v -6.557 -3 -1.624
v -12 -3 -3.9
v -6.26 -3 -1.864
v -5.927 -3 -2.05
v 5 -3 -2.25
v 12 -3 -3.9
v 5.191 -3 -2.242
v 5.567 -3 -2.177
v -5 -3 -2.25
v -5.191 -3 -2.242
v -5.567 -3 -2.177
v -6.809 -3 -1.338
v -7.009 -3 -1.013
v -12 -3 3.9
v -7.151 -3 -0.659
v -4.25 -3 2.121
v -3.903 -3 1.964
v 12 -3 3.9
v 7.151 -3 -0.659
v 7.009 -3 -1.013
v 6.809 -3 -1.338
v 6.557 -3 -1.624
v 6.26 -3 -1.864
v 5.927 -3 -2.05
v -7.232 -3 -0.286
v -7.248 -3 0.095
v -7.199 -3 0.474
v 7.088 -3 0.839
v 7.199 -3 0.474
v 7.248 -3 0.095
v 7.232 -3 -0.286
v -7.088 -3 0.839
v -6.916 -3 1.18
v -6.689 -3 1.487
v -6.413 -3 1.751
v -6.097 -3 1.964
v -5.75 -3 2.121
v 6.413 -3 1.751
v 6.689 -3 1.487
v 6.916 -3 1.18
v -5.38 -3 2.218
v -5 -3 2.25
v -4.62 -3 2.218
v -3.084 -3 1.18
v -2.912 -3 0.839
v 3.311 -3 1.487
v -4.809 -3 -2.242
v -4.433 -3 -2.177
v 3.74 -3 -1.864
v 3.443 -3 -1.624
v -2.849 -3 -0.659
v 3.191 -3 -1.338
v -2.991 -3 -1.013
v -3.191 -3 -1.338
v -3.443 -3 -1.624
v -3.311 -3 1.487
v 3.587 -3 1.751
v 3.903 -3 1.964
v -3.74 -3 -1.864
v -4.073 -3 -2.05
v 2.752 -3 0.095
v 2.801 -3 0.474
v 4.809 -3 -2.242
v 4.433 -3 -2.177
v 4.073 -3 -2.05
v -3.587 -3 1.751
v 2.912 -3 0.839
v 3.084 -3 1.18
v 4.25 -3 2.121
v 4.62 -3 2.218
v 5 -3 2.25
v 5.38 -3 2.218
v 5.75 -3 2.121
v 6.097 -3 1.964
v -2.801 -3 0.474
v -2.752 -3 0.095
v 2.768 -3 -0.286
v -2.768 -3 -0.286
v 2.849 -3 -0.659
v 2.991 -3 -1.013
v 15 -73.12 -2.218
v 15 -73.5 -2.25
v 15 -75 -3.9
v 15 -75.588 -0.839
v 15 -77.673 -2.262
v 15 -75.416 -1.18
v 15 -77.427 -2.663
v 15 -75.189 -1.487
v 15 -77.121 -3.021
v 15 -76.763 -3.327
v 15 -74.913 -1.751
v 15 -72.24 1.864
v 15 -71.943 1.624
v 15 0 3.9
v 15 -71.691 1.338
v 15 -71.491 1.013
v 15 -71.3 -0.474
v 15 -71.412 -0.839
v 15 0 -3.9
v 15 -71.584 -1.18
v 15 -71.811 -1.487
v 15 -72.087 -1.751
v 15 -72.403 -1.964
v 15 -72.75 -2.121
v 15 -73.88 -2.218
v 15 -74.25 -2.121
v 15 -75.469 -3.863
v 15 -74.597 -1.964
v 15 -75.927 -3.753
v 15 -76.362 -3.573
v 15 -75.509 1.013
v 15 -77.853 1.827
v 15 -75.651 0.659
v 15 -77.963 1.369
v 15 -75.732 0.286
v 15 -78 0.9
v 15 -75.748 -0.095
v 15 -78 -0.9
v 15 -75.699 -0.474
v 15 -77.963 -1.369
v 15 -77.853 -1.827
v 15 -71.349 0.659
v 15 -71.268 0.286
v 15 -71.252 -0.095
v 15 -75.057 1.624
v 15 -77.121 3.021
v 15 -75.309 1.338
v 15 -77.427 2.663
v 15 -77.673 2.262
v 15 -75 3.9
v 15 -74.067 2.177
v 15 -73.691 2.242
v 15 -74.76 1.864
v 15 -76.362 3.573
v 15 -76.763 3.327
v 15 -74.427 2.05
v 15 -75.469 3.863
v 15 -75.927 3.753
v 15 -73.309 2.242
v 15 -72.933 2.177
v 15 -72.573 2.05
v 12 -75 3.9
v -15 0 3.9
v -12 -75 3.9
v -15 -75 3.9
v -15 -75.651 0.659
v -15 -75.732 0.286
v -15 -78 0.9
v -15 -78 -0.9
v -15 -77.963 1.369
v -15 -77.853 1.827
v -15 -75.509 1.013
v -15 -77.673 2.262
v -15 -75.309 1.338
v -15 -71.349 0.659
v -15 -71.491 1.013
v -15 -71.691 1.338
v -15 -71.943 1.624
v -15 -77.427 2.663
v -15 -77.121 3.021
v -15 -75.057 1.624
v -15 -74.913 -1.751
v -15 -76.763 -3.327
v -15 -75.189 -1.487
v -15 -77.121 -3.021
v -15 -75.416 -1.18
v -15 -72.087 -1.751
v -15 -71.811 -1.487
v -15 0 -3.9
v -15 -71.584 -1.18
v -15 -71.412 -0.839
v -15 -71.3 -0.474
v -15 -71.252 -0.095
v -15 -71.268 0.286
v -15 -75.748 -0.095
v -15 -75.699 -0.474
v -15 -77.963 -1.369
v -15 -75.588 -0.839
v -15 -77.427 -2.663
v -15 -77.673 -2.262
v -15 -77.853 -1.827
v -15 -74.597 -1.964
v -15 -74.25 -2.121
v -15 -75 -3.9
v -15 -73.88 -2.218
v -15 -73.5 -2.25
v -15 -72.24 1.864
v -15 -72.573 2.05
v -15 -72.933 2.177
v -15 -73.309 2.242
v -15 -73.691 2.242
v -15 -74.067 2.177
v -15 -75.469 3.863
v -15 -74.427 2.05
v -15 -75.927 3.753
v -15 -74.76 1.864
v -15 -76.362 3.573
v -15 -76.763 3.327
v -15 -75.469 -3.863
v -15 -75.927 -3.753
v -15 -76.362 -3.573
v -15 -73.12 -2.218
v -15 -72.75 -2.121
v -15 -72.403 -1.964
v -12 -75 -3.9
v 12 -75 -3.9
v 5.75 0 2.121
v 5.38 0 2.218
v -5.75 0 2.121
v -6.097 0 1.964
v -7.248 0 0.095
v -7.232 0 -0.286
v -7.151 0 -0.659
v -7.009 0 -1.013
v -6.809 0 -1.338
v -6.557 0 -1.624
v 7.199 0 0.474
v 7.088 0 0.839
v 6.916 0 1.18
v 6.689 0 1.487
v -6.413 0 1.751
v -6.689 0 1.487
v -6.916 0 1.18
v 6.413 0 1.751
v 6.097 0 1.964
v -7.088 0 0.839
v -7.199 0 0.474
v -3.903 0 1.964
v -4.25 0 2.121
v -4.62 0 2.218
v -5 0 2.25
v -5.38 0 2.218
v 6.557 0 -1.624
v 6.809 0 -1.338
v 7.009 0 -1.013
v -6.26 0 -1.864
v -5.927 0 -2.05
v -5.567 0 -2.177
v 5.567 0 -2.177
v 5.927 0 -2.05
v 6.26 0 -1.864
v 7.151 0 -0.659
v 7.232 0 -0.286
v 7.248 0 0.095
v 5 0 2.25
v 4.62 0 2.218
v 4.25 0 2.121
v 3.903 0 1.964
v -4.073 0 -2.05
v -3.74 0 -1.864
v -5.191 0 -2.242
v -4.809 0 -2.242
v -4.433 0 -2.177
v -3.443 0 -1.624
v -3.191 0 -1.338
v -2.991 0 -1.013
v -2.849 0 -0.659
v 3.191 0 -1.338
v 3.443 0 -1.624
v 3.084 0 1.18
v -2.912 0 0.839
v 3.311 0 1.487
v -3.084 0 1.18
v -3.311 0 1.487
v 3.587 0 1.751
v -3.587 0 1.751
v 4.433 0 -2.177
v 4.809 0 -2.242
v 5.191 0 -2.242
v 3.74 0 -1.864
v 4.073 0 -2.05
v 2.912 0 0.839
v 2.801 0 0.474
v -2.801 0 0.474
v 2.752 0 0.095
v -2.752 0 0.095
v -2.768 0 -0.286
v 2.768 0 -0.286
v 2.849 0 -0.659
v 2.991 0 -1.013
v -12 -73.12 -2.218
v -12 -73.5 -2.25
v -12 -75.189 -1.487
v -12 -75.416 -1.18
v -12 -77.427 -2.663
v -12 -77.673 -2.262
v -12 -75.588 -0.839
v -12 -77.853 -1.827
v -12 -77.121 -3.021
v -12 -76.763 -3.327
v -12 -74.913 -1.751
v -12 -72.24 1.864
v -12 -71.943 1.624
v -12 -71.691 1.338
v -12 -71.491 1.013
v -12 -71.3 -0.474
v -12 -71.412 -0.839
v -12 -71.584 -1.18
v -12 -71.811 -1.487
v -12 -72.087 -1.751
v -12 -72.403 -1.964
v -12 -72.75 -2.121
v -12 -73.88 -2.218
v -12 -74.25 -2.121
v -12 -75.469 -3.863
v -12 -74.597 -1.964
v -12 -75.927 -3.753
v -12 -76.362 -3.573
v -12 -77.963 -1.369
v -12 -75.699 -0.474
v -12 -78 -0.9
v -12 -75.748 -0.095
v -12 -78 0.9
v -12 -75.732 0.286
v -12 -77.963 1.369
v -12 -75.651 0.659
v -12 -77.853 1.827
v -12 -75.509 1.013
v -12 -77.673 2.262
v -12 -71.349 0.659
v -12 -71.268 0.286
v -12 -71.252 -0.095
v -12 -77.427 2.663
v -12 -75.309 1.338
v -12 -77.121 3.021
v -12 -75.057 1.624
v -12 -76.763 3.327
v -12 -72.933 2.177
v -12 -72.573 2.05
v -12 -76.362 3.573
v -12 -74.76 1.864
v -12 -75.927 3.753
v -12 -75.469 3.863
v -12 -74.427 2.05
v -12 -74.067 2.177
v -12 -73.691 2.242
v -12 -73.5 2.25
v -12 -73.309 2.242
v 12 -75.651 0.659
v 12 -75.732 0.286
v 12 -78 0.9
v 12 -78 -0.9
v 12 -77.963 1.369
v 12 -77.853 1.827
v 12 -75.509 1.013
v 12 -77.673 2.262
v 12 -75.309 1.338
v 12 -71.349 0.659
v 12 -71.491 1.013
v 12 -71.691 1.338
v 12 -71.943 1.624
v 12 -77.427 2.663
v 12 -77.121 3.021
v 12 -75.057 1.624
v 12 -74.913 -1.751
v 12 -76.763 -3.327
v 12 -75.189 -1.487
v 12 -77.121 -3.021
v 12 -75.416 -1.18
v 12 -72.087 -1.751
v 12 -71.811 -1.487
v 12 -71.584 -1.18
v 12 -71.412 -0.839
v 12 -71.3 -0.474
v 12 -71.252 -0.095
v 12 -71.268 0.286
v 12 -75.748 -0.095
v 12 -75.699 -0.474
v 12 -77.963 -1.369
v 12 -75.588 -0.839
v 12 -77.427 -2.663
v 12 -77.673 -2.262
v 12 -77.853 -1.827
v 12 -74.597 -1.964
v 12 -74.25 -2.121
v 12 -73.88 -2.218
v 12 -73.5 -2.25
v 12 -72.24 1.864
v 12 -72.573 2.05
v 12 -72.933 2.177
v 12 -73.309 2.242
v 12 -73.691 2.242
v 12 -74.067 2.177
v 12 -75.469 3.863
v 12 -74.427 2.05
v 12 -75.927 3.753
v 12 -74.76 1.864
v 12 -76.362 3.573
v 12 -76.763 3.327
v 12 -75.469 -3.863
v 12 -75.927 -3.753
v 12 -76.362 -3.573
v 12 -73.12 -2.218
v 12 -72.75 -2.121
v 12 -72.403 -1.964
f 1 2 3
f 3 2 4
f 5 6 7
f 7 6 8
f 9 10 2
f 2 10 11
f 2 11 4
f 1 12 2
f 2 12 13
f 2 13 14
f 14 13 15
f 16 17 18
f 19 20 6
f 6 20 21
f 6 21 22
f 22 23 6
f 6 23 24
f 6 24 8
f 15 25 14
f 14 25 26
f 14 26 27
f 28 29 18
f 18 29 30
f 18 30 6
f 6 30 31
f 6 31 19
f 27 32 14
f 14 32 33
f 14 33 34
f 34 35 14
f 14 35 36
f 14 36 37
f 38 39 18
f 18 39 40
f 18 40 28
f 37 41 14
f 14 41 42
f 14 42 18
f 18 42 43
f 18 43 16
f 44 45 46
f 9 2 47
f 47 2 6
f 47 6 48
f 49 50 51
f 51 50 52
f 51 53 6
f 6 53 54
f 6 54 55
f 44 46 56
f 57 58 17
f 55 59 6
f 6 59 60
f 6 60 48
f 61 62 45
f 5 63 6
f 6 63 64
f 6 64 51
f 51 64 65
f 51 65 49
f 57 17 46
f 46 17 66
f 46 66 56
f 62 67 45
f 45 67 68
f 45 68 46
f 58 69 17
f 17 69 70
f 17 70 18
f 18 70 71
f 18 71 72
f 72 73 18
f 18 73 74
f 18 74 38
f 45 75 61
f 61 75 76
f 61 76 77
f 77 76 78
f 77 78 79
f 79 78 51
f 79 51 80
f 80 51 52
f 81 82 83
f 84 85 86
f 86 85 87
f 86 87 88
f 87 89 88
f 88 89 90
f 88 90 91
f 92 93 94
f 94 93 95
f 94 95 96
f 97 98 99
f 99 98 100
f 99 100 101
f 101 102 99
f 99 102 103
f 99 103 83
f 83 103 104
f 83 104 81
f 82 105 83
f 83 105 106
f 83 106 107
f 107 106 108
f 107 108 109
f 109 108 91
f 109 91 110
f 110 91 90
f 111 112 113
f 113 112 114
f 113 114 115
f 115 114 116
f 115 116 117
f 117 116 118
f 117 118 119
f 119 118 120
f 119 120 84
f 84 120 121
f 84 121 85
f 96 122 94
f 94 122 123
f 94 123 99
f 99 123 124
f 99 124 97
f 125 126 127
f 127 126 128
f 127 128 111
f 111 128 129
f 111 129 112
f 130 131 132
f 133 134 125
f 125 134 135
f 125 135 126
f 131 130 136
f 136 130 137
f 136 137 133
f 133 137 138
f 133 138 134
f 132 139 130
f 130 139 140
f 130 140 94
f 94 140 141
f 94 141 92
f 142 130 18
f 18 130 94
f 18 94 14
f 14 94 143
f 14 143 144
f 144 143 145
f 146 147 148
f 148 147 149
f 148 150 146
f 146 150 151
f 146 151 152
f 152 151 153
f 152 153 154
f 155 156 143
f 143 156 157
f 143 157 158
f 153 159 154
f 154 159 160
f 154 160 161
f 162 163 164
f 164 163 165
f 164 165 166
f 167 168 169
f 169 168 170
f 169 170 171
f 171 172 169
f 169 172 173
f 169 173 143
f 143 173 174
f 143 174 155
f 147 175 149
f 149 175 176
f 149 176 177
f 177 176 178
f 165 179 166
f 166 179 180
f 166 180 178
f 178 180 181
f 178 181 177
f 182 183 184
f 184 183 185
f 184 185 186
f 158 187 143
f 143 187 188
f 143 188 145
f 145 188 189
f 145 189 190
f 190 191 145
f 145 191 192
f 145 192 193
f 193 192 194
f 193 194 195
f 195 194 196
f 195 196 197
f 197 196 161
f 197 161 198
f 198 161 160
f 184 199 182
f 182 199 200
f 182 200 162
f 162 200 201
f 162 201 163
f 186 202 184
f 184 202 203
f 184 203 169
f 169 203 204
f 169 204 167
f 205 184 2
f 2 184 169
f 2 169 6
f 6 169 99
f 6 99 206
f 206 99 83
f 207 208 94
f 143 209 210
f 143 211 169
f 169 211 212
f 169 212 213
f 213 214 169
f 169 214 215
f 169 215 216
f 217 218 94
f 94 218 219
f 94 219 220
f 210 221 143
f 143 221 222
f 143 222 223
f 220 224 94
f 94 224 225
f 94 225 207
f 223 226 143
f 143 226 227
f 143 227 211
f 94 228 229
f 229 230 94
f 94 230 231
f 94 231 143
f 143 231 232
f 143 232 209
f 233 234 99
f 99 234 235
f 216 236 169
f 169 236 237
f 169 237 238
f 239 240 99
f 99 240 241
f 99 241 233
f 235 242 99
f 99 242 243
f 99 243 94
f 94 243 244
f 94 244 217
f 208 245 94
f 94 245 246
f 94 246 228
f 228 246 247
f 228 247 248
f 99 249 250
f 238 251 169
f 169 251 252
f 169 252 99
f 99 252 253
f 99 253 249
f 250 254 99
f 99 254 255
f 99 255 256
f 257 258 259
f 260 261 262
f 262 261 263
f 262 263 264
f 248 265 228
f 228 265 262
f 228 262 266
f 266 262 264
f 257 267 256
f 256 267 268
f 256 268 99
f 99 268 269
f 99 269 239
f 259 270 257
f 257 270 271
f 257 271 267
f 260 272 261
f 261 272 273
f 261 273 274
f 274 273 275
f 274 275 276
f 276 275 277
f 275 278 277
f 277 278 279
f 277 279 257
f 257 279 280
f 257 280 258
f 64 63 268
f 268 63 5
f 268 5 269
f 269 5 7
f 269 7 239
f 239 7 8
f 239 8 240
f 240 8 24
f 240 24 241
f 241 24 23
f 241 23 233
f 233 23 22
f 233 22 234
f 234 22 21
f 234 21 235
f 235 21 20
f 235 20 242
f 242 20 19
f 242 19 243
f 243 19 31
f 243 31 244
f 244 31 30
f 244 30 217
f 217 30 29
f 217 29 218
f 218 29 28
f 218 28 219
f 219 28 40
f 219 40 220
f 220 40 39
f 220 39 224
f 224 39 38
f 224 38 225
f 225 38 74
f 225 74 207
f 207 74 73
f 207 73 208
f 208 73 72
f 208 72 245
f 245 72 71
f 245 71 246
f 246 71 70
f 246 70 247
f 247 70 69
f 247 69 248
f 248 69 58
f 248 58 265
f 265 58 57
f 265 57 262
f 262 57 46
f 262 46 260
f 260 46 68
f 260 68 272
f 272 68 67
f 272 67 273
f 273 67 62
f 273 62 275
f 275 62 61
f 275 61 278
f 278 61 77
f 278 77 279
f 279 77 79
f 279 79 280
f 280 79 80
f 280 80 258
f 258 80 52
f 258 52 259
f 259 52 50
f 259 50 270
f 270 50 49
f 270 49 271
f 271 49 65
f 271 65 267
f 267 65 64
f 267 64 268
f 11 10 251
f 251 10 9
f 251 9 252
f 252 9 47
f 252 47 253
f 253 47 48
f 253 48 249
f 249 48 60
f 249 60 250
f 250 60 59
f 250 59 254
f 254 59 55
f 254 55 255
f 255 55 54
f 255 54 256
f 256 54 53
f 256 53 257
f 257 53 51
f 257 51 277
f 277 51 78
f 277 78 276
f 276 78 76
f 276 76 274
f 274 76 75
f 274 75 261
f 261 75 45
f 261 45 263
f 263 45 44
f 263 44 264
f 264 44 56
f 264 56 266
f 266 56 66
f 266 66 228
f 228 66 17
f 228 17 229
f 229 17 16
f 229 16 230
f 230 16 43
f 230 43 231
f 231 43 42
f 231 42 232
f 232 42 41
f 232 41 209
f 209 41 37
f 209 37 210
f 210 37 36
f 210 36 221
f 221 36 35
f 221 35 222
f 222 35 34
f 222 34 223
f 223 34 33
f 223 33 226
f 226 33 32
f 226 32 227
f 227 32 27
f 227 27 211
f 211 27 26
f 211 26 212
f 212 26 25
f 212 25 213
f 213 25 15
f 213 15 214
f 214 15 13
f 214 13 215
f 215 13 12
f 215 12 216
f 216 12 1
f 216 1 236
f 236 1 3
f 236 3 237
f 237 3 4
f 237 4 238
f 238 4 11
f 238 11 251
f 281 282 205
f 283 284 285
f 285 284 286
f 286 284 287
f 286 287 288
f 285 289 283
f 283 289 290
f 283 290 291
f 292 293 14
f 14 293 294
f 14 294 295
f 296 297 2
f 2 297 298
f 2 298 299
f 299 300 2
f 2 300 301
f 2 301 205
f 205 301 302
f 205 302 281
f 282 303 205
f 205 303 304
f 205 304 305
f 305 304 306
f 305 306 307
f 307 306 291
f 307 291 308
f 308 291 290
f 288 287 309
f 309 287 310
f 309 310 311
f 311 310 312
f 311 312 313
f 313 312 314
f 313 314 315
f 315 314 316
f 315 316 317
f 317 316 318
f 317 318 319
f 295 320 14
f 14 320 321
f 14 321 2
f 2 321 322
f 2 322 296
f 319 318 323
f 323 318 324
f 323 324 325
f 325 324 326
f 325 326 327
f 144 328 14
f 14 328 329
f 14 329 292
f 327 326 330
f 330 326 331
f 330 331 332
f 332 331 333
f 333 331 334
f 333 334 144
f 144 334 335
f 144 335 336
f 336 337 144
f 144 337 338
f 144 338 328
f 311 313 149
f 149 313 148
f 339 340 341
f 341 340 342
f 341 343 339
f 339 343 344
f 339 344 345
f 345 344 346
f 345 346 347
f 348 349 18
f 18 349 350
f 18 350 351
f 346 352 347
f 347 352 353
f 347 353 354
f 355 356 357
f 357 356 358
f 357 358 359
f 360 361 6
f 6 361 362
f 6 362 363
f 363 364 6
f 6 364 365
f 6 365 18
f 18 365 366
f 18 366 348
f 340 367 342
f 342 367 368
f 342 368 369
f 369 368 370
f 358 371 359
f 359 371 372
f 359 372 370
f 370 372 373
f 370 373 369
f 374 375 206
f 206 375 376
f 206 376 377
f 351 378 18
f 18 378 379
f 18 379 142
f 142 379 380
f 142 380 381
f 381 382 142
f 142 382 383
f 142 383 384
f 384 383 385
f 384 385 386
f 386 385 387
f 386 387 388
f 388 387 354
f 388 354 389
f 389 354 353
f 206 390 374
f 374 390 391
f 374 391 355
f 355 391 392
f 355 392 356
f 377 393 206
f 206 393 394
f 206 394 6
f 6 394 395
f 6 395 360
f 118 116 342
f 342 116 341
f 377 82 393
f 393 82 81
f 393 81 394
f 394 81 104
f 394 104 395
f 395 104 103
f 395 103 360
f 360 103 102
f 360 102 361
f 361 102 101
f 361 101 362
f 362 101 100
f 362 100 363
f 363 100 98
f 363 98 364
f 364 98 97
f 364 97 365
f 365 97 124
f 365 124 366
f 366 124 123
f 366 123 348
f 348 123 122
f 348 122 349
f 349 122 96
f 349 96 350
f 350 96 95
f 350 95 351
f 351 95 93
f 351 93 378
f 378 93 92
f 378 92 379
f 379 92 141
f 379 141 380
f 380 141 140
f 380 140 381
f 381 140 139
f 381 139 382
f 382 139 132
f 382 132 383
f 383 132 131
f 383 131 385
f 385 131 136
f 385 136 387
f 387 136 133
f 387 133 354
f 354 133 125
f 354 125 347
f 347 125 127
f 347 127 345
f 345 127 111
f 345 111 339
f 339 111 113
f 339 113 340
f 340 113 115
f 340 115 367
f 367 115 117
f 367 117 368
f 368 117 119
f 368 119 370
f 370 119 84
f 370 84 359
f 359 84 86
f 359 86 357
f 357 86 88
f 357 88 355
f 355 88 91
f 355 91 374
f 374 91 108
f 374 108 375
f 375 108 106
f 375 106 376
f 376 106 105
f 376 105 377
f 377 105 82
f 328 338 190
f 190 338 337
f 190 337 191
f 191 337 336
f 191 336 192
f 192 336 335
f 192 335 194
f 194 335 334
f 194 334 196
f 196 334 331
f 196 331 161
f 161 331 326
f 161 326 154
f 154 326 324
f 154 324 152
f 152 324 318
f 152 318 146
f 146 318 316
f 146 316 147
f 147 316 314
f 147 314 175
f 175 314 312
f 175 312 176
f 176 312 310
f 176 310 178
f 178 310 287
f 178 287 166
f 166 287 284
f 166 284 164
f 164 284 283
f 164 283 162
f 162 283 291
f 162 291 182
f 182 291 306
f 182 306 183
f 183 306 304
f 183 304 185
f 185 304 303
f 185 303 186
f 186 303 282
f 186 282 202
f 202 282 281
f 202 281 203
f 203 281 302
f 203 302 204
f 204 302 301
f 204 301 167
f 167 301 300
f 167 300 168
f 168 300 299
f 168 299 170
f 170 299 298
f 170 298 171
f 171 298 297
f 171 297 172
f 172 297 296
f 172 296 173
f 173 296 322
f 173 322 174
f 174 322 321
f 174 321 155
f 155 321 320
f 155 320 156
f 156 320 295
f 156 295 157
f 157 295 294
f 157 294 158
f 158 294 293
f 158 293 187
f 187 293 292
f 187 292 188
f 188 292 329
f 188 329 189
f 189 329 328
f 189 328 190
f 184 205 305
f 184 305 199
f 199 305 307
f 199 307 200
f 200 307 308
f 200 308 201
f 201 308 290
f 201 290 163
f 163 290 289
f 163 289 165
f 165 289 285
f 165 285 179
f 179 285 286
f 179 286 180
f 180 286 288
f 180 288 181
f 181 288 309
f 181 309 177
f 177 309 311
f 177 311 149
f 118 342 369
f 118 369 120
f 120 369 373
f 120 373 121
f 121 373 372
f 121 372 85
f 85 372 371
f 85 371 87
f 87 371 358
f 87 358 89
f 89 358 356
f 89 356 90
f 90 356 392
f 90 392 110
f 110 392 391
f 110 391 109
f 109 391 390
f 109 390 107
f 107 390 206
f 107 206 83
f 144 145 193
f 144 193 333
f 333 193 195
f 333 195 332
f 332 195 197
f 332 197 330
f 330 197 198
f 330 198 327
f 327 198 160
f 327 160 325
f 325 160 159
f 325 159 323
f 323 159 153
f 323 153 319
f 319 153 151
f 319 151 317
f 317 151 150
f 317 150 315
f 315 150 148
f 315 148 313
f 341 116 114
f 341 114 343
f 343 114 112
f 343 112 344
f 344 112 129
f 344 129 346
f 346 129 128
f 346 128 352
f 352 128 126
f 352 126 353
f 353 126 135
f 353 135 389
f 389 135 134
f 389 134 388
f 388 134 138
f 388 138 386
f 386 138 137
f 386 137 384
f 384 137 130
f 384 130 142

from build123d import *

# Parameters (mm, degrees)
SKETCH1_W               = 30
SKETCH1_H               = 7.8
BOSS_EXTRUDE1_DEPTH     = 3
CUT_EXTRUDE1_REACH      = 5
SKETCH2_R               = 2.25
SKETCH3_W               = 3
SKETCH3_H               = 7.8
BOSS_EXTRUDE2_DEPTH     = 75
SKETCH4_R               = 2.25
CUT_EXTRUDE2_DEPTH      = 1
CUT_EXTRUDE2_DEPTH_BACK = 31
FILLET1_R               = 3


with BuildPart() as part:
    # Sketch1 → Boss-Extrude1 (new body)
    with BuildSketch(Plane(origin=(0, 0, 0), x_dir=(1, 0, 0), z_dir=(0, 1, 0))):
        Rectangle(SKETCH1_W, SKETCH1_H)
    extrude(amount=-BOSS_EXTRUDE1_DEPTH)

    # Sketch2 → Cut-Extrude1 (cut, up to next)
    with BuildSketch(Plane(origin=(0, 0, 0), x_dir=(1, 0, 0), z_dir=(0, 1, 0)), mode=Mode.PRIVATE) as cut_extrude1_sk1:
        with Locations((-5, 0)):
            Circle(SKETCH2_R)
    cut_extrude1_tool1 = extrude(cut_extrude1_sk1.sketch, amount=-CUT_EXTRUDE1_REACH, mode=Mode.PRIVATE) & part.part
    add(cut_extrude1_tool1.solids().sort_by_distance((-5, 0, 0))[0], mode=Mode.SUBTRACT)
    # Sketch2 → Cut-Extrude1 (cut, up to next)
    with BuildSketch(Plane(origin=(0, 0, 0), x_dir=(1, 0, 0), z_dir=(0, 1, 0)), mode=Mode.PRIVATE) as cut_extrude1_sk2:
        with Locations((5, 0)):
            Circle(SKETCH2_R)
    cut_extrude1_tool2 = extrude(cut_extrude1_sk2.sketch, amount=-CUT_EXTRUDE1_REACH, mode=Mode.PRIVATE) & part.part
    add(cut_extrude1_tool2.solids().sort_by_distance((5, 0, 0))[0], mode=Mode.SUBTRACT)

    # Sketch3 → Boss-Extrude2 (add)
    with BuildSketch(Plane.XZ.offset(3)):
        with Locations((-13.5, 0)):
            Rectangle(SKETCH3_W, SKETCH3_H)
        with Locations((13.5, 0)):
            Rectangle(SKETCH3_W, SKETCH3_H)
    extrude(amount=BOSS_EXTRUDE2_DEPTH)

    # Sketch4 → Cut-Extrude2 (cut, two sides)
    with BuildSketch(Plane(origin=(15, 0, 0), x_dir=(0, 0, -1), z_dir=(1, 0, 0))) as cut_extrude2_sk:
        with Locations((0, -73.5)):
            Circle(SKETCH4_R)
    extrude(amount=CUT_EXTRUDE2_DEPTH, mode=Mode.SUBTRACT)
    extrude(cut_extrude2_sk.sketch, amount=-CUT_EXTRUDE2_DEPTH_BACK, mode=Mode.SUBTRACT)

    # Fillet1
    fillet1_edges = [part.edges().sort_by_distance(p)[0] for p in [
        (-13.5, -78, -3.9),
        (-13.5, -78, 3.9),
        (13.5, -78, 3.9),
        (13.5, -78, -3.9),
    ]]
    fillet(fillet1_edges, radius=FILLET1_R)


solid = part.part
